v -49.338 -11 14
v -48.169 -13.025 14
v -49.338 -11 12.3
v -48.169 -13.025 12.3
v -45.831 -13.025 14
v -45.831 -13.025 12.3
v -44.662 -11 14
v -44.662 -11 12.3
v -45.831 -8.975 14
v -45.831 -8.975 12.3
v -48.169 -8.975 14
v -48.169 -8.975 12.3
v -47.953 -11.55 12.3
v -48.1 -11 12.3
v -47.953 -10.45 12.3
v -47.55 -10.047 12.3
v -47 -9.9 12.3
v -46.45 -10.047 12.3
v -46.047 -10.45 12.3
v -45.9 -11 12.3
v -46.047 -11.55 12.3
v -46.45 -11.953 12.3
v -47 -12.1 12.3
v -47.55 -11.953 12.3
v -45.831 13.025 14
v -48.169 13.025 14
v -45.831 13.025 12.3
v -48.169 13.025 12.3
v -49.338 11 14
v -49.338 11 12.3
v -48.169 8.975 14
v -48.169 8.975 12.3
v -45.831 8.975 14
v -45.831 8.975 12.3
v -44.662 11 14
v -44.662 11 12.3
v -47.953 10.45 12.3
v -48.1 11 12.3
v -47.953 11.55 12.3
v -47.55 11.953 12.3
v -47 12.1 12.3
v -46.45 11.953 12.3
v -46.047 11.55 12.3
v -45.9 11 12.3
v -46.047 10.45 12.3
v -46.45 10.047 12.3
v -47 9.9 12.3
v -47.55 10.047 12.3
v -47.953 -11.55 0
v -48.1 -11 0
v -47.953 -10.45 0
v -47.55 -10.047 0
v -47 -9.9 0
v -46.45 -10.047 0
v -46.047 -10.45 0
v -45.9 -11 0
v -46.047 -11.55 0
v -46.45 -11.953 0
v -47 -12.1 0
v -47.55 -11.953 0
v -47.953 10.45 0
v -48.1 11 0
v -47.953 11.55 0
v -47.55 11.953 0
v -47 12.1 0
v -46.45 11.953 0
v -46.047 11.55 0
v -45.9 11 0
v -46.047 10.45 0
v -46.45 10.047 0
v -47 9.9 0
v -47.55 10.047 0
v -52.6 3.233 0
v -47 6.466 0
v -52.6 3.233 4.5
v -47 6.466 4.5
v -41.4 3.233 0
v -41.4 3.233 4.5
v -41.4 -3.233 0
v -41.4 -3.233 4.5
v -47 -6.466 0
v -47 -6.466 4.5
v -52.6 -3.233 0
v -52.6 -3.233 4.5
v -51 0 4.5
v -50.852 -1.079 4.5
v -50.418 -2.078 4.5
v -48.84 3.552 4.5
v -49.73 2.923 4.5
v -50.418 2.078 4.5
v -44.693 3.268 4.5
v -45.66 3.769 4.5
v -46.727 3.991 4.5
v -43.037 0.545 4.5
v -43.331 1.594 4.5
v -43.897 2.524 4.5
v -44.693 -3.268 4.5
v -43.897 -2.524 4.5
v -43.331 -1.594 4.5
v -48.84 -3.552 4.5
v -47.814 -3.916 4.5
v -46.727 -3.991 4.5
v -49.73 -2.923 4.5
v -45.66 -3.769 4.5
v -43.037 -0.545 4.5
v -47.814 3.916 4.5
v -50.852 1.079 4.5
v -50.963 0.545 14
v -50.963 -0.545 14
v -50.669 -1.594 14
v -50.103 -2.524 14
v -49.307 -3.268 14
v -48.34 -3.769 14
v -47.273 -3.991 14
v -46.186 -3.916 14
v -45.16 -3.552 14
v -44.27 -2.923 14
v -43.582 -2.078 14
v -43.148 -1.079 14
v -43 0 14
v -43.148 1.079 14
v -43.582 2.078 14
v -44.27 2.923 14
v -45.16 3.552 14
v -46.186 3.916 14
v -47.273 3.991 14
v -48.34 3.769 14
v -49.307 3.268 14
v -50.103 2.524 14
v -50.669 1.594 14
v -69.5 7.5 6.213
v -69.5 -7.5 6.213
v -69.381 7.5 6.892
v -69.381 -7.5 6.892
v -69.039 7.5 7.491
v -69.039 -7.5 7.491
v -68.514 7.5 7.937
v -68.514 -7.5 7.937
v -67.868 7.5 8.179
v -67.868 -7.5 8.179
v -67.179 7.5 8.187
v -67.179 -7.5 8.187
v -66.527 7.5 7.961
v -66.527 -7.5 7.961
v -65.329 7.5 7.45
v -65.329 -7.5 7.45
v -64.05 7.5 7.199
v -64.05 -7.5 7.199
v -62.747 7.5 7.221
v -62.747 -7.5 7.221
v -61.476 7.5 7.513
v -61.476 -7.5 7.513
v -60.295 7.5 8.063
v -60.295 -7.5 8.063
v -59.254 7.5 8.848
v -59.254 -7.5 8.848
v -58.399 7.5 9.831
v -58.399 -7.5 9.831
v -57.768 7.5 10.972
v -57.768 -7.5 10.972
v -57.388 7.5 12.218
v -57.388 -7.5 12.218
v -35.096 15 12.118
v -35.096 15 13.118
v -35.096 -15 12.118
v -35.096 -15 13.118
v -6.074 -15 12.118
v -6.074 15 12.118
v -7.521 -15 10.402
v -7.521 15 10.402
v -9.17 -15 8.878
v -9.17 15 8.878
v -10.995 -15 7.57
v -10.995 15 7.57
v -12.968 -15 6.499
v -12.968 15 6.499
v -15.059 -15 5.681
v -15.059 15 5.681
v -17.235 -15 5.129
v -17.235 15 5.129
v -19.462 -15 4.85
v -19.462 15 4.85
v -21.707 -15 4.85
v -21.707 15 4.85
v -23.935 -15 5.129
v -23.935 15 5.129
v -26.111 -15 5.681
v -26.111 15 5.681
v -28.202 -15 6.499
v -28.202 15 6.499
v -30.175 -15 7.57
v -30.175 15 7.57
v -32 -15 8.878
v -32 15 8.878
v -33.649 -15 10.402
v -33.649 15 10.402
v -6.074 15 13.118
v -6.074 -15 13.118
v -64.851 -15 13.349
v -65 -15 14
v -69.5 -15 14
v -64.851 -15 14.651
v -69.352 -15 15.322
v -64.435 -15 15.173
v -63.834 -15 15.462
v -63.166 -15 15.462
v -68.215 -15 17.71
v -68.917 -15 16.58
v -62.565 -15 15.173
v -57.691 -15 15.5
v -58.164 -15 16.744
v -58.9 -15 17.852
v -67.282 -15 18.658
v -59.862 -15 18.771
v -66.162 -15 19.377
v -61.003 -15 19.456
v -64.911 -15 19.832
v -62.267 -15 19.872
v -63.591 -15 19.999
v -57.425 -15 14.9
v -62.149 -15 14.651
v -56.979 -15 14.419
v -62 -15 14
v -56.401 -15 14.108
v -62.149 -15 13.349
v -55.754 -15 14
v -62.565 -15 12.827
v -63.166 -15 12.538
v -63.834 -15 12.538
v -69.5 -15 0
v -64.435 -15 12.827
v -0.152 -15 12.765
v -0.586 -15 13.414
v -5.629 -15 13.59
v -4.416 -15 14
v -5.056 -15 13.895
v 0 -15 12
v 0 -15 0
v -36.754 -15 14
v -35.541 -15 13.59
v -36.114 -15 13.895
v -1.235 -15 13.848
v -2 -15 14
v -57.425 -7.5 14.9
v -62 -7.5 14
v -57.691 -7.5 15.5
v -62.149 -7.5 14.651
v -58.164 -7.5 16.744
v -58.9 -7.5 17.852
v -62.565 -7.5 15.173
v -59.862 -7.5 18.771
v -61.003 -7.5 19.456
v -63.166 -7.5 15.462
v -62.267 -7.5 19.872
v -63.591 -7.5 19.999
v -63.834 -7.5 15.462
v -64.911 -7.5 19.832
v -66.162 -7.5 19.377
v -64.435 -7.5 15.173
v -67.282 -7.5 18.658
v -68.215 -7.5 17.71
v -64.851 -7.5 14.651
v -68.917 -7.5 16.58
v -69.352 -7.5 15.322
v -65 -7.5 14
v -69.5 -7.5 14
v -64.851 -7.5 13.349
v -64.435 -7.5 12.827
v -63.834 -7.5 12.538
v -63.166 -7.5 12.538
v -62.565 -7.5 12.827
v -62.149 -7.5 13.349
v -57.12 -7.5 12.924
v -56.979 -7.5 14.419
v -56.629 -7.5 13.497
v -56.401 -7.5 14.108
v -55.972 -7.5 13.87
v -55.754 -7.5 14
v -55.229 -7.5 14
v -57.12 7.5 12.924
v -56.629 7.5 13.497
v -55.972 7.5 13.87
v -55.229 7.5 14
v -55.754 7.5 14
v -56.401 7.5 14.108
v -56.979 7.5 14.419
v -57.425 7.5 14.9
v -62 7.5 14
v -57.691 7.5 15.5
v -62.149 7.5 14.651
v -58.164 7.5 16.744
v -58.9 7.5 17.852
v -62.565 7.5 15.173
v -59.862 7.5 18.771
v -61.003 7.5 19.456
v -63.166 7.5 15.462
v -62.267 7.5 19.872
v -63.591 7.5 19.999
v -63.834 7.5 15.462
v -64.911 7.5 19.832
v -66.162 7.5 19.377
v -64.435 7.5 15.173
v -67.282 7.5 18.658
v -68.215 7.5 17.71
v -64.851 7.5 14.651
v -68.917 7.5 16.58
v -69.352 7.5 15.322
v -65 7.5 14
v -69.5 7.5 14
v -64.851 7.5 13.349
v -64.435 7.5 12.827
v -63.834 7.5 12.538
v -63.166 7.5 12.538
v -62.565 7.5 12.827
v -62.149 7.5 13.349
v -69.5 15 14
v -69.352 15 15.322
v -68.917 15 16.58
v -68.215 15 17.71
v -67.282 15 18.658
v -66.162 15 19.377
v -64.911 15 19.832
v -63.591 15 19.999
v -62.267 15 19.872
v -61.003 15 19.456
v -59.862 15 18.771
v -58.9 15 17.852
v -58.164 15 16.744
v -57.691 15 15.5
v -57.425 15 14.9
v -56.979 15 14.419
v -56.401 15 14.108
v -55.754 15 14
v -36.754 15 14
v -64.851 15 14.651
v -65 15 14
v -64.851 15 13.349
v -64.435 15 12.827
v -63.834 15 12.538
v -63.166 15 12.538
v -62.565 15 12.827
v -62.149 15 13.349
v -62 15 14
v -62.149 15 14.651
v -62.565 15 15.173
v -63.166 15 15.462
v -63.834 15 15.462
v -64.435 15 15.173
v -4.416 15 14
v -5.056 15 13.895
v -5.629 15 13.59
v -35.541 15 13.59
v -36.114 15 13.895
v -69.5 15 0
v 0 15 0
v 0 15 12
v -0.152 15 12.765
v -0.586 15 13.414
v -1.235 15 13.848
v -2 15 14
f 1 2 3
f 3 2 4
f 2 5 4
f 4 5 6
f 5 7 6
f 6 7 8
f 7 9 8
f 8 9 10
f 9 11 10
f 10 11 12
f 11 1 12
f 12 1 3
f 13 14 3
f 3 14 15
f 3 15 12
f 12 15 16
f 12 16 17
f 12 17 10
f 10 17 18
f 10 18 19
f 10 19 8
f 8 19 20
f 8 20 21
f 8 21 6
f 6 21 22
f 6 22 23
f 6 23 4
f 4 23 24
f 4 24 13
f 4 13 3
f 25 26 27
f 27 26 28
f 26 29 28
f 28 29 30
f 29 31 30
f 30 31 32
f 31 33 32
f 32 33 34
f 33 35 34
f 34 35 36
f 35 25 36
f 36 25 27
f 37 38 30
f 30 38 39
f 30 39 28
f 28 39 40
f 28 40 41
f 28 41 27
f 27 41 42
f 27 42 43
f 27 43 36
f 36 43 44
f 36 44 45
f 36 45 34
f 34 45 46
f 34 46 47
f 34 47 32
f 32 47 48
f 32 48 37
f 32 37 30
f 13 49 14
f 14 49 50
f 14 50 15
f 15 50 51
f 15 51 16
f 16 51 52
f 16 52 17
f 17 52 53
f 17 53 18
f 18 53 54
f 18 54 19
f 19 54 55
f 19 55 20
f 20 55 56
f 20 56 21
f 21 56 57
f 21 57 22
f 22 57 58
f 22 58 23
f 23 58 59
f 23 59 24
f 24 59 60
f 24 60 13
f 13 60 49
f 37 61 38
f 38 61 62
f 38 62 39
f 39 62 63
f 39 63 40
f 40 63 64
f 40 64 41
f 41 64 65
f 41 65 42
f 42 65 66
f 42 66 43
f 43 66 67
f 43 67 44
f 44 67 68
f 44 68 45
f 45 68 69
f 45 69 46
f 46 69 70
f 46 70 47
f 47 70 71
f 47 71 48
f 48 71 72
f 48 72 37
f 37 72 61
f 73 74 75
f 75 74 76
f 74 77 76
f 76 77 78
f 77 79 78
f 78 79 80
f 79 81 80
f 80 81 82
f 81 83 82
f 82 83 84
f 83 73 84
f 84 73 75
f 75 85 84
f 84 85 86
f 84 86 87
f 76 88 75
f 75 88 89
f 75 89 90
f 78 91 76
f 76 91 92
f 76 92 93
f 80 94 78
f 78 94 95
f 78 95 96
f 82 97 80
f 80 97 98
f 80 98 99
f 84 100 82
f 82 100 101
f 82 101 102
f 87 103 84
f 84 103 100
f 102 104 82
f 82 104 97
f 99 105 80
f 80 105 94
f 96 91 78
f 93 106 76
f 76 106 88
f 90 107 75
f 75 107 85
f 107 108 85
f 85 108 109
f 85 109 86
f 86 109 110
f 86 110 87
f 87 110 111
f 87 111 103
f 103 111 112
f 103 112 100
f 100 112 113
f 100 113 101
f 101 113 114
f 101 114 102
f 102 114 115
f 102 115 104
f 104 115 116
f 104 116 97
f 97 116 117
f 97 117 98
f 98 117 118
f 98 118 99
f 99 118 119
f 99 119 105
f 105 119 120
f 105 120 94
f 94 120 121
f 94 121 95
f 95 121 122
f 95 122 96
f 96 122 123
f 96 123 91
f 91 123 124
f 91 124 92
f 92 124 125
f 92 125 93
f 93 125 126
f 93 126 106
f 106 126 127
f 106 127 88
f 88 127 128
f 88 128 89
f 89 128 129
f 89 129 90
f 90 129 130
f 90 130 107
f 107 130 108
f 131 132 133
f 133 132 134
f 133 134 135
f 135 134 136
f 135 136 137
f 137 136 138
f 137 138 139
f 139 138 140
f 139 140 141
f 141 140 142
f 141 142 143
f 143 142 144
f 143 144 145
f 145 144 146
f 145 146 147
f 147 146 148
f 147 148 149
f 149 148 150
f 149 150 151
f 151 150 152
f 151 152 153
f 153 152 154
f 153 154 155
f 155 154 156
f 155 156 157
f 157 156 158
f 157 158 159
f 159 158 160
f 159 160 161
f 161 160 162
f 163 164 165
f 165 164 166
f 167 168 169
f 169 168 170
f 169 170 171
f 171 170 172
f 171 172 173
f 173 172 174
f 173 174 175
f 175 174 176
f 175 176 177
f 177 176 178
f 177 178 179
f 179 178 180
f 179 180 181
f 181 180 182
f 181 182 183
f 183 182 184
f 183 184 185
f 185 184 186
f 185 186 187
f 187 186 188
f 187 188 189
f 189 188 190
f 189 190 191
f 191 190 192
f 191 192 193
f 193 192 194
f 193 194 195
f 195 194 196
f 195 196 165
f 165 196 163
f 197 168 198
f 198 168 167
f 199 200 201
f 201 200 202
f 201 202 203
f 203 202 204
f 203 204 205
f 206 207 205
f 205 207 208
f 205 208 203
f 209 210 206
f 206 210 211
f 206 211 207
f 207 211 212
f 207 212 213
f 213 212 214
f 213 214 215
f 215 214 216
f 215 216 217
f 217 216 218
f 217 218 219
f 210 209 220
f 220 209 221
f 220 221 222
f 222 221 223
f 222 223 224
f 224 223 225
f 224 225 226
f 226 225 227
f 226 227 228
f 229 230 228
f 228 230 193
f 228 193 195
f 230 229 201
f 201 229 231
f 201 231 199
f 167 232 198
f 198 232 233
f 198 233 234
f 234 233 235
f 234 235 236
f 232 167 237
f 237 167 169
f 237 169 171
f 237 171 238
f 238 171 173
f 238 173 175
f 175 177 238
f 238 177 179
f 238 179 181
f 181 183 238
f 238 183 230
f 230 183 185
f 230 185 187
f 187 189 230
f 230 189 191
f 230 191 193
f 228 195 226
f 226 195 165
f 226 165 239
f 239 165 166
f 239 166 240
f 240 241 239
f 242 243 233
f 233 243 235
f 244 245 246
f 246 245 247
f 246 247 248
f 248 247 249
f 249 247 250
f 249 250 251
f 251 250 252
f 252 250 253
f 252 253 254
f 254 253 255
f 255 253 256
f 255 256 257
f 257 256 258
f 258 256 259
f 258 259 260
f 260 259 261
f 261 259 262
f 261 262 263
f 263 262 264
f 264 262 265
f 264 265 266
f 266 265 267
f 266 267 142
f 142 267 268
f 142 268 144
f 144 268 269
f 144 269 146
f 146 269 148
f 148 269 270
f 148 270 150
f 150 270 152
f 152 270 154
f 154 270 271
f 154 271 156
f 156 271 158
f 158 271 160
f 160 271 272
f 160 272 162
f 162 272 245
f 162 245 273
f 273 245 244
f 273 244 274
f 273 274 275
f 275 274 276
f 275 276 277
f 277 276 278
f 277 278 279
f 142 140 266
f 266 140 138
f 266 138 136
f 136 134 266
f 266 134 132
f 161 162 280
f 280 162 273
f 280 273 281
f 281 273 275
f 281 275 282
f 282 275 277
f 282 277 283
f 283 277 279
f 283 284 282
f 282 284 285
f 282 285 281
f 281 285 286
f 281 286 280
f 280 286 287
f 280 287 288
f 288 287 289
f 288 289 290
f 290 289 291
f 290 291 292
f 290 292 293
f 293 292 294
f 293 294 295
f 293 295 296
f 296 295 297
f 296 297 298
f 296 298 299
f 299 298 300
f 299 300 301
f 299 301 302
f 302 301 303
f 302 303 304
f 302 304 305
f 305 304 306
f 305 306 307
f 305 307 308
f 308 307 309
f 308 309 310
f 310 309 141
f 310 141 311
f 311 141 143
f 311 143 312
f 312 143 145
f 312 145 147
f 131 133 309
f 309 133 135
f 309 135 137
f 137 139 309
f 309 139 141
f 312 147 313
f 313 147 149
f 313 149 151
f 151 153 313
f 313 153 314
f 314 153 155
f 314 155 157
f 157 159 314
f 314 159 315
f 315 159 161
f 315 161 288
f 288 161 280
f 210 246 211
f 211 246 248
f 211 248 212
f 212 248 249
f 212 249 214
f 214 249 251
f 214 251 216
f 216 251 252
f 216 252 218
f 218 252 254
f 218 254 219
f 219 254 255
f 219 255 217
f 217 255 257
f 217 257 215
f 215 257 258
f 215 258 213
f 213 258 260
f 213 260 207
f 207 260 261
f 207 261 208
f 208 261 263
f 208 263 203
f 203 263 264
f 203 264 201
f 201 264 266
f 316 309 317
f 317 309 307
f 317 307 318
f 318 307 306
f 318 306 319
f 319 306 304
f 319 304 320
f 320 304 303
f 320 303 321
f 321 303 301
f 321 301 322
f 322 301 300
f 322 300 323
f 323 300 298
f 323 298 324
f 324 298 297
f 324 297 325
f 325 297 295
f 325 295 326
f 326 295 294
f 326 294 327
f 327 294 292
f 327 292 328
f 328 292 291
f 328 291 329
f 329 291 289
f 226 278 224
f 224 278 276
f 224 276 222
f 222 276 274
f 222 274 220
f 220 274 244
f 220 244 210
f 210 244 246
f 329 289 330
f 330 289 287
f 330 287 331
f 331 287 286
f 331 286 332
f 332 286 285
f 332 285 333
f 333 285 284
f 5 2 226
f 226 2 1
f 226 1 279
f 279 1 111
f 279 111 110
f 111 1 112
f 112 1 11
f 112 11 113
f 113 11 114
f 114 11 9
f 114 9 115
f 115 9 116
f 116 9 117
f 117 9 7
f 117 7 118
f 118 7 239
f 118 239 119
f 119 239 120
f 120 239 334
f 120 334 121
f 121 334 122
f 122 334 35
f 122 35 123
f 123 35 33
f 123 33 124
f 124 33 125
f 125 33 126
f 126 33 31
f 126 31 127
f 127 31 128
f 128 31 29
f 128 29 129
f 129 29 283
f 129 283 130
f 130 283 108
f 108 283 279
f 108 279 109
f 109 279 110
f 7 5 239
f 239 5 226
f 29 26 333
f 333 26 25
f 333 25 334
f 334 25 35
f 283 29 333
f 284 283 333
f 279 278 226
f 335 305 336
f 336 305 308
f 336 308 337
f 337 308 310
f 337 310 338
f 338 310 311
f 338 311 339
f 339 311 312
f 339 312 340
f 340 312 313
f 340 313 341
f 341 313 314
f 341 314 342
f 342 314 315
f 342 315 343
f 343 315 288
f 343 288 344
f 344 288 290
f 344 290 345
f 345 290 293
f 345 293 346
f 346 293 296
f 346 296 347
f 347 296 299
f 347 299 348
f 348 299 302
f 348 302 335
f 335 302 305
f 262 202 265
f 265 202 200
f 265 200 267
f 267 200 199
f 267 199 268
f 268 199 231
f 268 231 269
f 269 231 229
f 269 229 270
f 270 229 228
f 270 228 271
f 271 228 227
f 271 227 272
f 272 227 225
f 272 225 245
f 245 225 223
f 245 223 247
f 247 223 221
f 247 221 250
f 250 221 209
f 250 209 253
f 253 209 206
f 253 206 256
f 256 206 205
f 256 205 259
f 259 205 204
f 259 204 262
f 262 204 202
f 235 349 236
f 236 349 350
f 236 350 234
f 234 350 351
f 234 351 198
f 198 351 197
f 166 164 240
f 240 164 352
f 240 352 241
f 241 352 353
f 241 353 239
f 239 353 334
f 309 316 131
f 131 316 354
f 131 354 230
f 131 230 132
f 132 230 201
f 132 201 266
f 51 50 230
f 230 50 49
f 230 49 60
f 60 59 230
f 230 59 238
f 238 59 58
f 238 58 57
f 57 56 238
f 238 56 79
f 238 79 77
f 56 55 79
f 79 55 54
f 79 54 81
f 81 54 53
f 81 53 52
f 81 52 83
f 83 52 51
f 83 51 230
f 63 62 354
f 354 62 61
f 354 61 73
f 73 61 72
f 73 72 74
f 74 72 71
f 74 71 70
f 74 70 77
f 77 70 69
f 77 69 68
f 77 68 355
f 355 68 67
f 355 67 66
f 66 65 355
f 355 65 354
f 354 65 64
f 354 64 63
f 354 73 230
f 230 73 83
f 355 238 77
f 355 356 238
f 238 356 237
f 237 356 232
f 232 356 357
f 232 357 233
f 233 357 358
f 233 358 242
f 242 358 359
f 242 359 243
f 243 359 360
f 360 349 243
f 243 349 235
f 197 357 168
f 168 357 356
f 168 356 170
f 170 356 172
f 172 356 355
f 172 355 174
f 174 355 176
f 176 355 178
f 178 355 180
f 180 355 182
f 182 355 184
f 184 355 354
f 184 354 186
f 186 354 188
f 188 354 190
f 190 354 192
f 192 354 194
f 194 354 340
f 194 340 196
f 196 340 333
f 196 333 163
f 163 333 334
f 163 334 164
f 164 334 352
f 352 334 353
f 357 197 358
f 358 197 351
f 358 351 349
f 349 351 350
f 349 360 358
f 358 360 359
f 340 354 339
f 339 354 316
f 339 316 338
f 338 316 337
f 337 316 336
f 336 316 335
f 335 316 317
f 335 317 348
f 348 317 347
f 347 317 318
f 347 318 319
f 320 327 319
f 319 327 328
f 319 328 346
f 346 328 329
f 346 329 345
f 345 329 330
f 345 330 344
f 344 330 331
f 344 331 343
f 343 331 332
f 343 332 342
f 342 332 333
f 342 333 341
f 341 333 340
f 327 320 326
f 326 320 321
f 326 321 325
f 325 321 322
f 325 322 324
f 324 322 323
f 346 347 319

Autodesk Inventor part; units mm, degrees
ref_plane "YZ Plane" through (0, 0, 0) normal (1, 0, 0) x (0, 1, 0)
ref_plane "XZ Plane" through (0, 0, 0) normal (0, 1, 0) x (-1, 0, 0)
ref_plane "XY Plane" through (0, 0, 0) normal (0, 0, 1) x (1, 0, 0)
sketch "Sketch2" plane through (0, 0, 0) normal (0, 1, 0) x (-1, 0, 0)
  arc A0 (2, 14) -> (0, 12) centre (2, 12) ccw
  arc A1 (6.0742, 13.1179) -> (35.0957, 13.1179) centre (20.5849, 22.9) ccw
  line L0 (36.754, 14) -> (55.754, 14)
  arc A2 (69.5, 14) -> (57.6905, 15.5) centre (63.5, 14) ccw
  circle A3 centre (63.5, 14) radius 1.5
  arc A4 (55.754, 14) -> (57.6905, 15.5) centre (55.754, 16) ccw
  arc A5 (36.754, 14) -> (35.0957, 13.1179) centre (36.754, 12) ccw
  arc A6 (6.0742, 13.1179) -> (4.4158, 14) centre (4.4158, 12) ccw
  arc A7 (57.3882, 12.2181) -> (55.2287, 14) centre (55.2287, 11.8005) ccw
  line L1 (0, 12) -> (0, 0)
  line L2 (0, 0) -> (69.5, 0)
  line L3 (69.5, 14) -> (69.5, 0)
  arc A8 (57.3882, 12.2181) -> (69.5, 11.7415) centre (63.5, 13.4) ccw
  line L4 (4.4158, 14) -> (2, 14)
  point P0 (0, 0)
  point P1 (20.5849, 5.4)
  dimension "d3" = 2
  dimension "d17" = 3
  dimension "d18" = 2
  dimension "d137" = 2.1995
  dimension "d140" = 12
  dimension "d141" = 69.5
  dimension "d142" = 14
  dimension "d143" = 6
  dimension "d144" = 17.5
  dimension "d145" = 19
  dimension "d146" = 5.4
  dimension "d147" = 6.225
  dimension "d148" = 13.4
extrude "Extrusion1" add sketch "Sketch2" along normal mid plane 30
extrude "Extrusion2" cut sketch "Sketch2" along normal mid plane 15 contours A8 A7 L0 A4 A2 L3
sketch "Sketch7" plane through (0, -15, 0) normal (0, -1, 0) x (1, 0, 0)
  arc A0 (-4.4158, 14) -> (-6.0742, 13.1179) centre (-4.4158, 12) ccw projected
  line L0 (-6.0742, 13.1179) -> (-6.0742, 12.1179)
  arc A1 (-35.0957, 13.1179) -> (-6.0742, 13.1179) centre (-20.5849, 22.9) ccw projected
  line L1 (-35.0957, 13.1179) -> (-35.0957, 12.1179)
  arc A2 (-35.0957, 12.1179) -> (-6.0742, 12.1179) centre (-20.5849, 22.8831) ccw
  point P0 (0, 0)
  point P1 (-6.3389, 0)
  dimension "d59" = 1
  dimension "d60" = 1
extrude "Extrusion10" cut sketch "Sketch7" against normal up to next
fillet "Fillet4" radius 2 1 edges at (-69.5, 0, 11.7415)
sketch "Sketch13" plane through (-55.754, -15, 14) normal (0, 0, 1) x (1, 0, 0)
  circle A0 centre (8.754, 15) radius 4
  line L0 (55.754, 0) -> (55.754, 30) projected
  line L1 (14.254, 18.1754) -> (14.254, 11.8246)
  line L2 (14.254, 11.8246) -> (8.754, 8.6491)
  line L3 (8.754, 8.6491) -> (3.254, 11.8246)
  line L4 (3.254, 11.8246) -> (3.254, 18.1754)
  line L5 (3.254, 18.1754) -> (8.754, 21.3509)
  line L6 (8.754, 21.3509) -> (14.254, 18.1754)
  line L7 (19, 0) -> (0, 0) projected
  circle A1 centre (8.754, 26) radius 1.1
  line L8 (8.754, 15) -> (25.6273, 15) construction
  line L9 (9.9232, 23.975) -> (7.5849, 23.975)
  line L10 (7.5849, 23.975) -> (6.4158, 26)
  line L11 (6.4158, 26) -> (7.5849, 28.025)
  line L12 (7.5849, 28.025) -> (9.9232, 28.025)
  line L13 (9.9232, 28.025) -> (11.0923, 26)
  line L14 (11.0923, 26) -> (9.9232, 23.975)
  circle A2 centre (8.754, 4) radius 1.1
  line L15 (9.9232, 6.025) -> (7.5849, 6.025)
  line L16 (7.5849, 6.025) -> (6.4158, 4)
  line L17 (6.4158, 4) -> (7.5849, 1.975)
  line L18 (7.5849, 1.975) -> (9.9232, 1.975)
  line L19 (9.9232, 1.975) -> (11.0923, 4)
  line L20 (11.0923, 4) -> (9.9232, 6.025)
  point P0 (55.754, 15)
  dimension "d99" = 8
  dimension "d106" = 47
  dimension "d131" = 11
  dimension "d132" = 15
  dimension "d159" = 2.2
  dimension "d160" = 11
  dimension "d163" = 4.05
extrude "Extrusion15" cut sketch "Sketch13" against normal up to next contours A0
sketch "Sketch17" plane through (-55.754, -15, 14) normal (0, 0, 1) x (1, 0, 0)
  point P0 (55.754, 15)
sketch "Sketch19" plane through (0, 15, 0) normal (0, 0, -1) x (-1, 0, 0)
  circle A0 centre (47, -15) radius 4 projected
  line L0 (47, -21.4663) -> (41.4, -18.2332)
  line L1 (41.4, -18.2332) -> (41.4, -11.7668)
  line L2 (41.4, -11.7668) -> (47, -8.5337)
  line L3 (47, -8.5337) -> (52.6, -11.7668)
  line L4 (52.6, -11.7668) -> (52.6, -18.2332)
  line L5 (52.6, -18.2332) -> (47, -21.4663)
  point P0 (0, -15)
  dimension "d156" = 11.2
extrude "Extrusion23" cut sketch "Sketch19" against normal blind 4.5
sketch "Sketch20" plane through (0, 15, 0) normal (0, 1, 0) x (1, 0, 0)
  point P0 (0, 0)
extrude "Extrusion24" cut sketch "Sketch13" against normal up to next contours A1 | A2
extrude "Extrusion25" cut sketch "Sketch13" against normal blind 1.7 contours A1 | L9 L10 L11 L12 L13 L14 | A2 | L20 L19 L18 L17 L16 L15
properties part number "Bike_Mount_Right" material "PC/ABS Plastic"
